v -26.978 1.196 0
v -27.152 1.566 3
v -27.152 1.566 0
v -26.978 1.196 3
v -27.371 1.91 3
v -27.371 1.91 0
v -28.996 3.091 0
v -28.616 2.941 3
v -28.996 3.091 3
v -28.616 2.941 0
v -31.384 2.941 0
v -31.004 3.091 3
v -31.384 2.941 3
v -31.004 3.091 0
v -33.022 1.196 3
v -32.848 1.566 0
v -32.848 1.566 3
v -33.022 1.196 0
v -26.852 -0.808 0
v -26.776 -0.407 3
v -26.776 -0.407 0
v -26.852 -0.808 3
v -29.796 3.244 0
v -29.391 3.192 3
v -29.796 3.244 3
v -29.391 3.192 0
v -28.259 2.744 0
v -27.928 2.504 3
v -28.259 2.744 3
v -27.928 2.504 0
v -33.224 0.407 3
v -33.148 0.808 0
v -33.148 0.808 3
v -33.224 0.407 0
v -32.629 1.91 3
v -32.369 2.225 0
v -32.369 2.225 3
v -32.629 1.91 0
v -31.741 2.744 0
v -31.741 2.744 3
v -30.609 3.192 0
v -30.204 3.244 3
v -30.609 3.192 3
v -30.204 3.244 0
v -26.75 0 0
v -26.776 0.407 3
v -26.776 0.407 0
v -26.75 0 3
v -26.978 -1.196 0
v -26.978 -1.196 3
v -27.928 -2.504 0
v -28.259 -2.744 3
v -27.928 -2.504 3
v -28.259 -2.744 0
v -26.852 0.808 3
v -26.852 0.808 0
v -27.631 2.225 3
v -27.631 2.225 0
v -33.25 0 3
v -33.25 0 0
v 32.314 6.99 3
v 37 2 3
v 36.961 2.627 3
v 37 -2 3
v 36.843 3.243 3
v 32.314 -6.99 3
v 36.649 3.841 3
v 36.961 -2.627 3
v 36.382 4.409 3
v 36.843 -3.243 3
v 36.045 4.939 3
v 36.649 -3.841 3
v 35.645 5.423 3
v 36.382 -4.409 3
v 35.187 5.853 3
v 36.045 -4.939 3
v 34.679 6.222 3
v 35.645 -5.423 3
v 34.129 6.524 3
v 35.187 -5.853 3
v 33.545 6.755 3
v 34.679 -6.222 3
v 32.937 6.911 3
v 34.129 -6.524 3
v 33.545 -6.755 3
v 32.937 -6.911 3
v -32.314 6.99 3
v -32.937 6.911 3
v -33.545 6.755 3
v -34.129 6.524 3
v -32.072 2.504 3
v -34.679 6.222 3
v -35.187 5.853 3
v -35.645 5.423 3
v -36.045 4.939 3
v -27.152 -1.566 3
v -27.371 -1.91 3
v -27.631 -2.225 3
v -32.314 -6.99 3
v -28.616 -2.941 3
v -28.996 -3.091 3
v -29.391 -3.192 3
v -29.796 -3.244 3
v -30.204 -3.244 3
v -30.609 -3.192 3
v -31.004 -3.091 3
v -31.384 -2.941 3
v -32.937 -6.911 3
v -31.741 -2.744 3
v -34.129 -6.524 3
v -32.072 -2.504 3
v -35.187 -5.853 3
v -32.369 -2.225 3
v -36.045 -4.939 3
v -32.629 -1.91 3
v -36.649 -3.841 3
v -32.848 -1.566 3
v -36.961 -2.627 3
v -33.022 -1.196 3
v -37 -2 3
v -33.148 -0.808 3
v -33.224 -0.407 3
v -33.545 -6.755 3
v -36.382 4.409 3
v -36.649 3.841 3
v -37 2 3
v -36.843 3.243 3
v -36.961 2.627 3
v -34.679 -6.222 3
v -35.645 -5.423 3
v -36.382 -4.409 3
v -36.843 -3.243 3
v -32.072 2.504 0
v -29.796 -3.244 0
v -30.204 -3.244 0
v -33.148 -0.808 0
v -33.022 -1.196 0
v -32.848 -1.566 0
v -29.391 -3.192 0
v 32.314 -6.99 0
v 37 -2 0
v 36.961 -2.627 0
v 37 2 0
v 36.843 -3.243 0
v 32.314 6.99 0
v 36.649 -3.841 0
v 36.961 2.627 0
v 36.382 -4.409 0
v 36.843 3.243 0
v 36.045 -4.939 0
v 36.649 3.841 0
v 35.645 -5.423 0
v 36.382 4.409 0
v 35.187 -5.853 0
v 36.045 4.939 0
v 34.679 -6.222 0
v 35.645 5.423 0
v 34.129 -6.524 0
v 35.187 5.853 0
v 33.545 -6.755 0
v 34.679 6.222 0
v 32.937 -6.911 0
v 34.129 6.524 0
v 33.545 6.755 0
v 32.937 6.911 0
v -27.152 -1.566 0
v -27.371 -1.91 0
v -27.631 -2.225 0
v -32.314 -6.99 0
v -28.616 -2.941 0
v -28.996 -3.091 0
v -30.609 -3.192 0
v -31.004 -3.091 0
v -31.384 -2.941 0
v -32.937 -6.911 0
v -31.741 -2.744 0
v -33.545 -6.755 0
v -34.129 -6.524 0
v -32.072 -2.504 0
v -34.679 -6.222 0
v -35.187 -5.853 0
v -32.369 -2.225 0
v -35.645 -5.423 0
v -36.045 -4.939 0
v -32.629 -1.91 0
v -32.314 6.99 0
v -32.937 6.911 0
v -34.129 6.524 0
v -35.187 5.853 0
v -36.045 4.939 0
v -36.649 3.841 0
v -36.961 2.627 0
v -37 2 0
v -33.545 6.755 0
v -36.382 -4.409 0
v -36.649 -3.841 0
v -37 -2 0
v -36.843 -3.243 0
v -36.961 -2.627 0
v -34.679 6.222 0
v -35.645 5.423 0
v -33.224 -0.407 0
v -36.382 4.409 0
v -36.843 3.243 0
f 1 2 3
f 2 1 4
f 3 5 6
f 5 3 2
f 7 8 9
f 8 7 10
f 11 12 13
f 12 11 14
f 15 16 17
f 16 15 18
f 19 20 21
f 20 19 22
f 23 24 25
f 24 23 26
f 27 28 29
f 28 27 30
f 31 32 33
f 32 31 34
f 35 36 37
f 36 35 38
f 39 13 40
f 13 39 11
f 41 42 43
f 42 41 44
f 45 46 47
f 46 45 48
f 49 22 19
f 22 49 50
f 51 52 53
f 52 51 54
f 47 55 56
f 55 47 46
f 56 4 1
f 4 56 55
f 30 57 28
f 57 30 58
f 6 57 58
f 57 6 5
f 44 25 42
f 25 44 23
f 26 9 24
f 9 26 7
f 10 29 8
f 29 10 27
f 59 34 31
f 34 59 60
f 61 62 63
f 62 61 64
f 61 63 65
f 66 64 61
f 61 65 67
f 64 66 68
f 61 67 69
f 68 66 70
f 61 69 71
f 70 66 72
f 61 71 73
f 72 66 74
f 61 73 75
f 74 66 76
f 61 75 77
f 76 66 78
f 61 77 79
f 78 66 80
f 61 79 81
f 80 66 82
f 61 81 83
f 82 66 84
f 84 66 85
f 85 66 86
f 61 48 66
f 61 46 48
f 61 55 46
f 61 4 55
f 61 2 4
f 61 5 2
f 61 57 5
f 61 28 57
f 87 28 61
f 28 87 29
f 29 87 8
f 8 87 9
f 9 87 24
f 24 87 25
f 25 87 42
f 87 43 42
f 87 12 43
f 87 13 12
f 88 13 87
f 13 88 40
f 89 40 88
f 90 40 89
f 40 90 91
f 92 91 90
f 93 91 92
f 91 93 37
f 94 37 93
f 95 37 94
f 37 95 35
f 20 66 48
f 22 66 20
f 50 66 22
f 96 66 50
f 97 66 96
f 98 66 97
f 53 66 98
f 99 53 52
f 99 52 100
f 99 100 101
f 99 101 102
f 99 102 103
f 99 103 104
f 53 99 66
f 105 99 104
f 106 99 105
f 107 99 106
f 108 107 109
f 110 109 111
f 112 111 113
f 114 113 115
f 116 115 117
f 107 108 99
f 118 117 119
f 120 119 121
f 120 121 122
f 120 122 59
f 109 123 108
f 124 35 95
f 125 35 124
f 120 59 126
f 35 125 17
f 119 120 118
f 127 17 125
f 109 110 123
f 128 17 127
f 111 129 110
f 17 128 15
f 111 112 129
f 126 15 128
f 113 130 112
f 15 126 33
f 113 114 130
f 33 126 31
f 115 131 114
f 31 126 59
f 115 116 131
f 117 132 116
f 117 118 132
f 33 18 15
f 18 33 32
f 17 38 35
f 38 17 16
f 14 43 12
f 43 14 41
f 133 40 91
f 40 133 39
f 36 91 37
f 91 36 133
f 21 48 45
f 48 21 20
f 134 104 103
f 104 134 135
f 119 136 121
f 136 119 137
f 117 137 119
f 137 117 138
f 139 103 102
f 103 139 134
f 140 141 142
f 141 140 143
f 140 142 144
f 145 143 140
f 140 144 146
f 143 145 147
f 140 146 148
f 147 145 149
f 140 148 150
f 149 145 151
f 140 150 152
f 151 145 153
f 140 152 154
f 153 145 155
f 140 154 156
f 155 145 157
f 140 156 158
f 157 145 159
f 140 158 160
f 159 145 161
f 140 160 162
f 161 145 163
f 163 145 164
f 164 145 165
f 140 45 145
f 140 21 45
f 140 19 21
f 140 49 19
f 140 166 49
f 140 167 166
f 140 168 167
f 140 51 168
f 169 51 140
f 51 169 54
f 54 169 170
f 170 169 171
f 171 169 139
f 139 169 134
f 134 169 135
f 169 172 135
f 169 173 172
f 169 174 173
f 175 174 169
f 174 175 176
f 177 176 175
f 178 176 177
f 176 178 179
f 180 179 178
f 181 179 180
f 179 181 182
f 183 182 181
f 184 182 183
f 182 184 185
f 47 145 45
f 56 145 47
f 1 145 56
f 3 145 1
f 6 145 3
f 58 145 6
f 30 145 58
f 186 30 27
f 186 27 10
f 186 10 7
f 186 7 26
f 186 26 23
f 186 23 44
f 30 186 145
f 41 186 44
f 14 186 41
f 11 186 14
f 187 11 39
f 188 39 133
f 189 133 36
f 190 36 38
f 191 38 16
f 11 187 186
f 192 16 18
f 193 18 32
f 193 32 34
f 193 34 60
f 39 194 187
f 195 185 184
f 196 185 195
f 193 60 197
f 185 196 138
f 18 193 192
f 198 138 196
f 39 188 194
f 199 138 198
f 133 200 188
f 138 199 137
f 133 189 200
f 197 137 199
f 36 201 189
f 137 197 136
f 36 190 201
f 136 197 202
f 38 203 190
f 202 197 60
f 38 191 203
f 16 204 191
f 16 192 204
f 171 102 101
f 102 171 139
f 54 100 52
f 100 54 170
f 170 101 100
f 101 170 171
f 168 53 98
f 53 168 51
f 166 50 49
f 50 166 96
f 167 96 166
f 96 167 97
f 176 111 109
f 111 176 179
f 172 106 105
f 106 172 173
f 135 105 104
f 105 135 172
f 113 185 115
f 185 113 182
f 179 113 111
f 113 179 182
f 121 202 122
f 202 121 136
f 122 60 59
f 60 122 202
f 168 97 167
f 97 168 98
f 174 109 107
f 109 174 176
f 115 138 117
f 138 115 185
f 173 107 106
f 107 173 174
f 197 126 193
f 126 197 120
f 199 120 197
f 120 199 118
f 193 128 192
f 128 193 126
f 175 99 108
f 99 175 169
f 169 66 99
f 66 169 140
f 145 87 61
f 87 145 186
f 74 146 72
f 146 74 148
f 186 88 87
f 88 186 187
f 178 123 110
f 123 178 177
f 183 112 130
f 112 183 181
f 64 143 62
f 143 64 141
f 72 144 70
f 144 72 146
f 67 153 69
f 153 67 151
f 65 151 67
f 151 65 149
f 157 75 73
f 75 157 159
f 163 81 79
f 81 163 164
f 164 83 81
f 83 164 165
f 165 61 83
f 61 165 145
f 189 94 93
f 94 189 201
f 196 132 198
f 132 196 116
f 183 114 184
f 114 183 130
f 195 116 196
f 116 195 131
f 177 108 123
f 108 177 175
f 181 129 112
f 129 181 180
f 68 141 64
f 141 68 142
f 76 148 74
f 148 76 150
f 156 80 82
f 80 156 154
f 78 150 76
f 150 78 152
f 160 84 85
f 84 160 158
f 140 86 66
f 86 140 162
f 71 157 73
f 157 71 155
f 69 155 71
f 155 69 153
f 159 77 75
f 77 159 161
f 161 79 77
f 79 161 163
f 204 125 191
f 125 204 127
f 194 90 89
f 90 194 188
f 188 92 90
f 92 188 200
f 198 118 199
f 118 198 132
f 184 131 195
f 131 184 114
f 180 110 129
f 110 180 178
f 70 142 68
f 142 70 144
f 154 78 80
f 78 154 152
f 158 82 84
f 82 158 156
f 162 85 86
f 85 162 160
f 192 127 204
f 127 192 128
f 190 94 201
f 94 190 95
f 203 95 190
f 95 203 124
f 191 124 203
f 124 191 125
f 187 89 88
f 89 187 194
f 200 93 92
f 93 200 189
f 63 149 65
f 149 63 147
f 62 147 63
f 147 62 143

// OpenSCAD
$fn = 50;


difference() {
	union() {
		hull() {
			translate(v = [-32.0000000000, 2.0000000000, 0]) {
				cylinder(h = 3, r = 5);
			}
			translate(v = [32.0000000000, 2.0000000000, 0]) {
				cylinder(h = 3, r = 5);
			}
			translate(v = [-32.0000000000, -2.0000000000, 0]) {
				cylinder(h = 3, r = 5);
			}
			translate(v = [32.0000000000, -2.0000000000, 0]) {
				cylinder(h = 3, r = 5);
			}
		}
	}
	union() {
		translate(v = [-30.0000000000, 0.0000000000, 0]) {
			cylinder(h = 3, r = 3.2500000000);
		}
		translate(v = [-30.0000000000, 0.0000000000, 0]) {
			cylinder(h = 3, r = 1.8000000000);
		}
		translate(v = [-30.0000000000, 0.0000000000, 0]) {
			cylinder(h = 3, r = 1.8000000000);
		}
		translate(v = [-30.0000000000, 0.0000000000, 0]) {
			cylinder(h = 3, r = 1.8000000000);
		}
	}
}
